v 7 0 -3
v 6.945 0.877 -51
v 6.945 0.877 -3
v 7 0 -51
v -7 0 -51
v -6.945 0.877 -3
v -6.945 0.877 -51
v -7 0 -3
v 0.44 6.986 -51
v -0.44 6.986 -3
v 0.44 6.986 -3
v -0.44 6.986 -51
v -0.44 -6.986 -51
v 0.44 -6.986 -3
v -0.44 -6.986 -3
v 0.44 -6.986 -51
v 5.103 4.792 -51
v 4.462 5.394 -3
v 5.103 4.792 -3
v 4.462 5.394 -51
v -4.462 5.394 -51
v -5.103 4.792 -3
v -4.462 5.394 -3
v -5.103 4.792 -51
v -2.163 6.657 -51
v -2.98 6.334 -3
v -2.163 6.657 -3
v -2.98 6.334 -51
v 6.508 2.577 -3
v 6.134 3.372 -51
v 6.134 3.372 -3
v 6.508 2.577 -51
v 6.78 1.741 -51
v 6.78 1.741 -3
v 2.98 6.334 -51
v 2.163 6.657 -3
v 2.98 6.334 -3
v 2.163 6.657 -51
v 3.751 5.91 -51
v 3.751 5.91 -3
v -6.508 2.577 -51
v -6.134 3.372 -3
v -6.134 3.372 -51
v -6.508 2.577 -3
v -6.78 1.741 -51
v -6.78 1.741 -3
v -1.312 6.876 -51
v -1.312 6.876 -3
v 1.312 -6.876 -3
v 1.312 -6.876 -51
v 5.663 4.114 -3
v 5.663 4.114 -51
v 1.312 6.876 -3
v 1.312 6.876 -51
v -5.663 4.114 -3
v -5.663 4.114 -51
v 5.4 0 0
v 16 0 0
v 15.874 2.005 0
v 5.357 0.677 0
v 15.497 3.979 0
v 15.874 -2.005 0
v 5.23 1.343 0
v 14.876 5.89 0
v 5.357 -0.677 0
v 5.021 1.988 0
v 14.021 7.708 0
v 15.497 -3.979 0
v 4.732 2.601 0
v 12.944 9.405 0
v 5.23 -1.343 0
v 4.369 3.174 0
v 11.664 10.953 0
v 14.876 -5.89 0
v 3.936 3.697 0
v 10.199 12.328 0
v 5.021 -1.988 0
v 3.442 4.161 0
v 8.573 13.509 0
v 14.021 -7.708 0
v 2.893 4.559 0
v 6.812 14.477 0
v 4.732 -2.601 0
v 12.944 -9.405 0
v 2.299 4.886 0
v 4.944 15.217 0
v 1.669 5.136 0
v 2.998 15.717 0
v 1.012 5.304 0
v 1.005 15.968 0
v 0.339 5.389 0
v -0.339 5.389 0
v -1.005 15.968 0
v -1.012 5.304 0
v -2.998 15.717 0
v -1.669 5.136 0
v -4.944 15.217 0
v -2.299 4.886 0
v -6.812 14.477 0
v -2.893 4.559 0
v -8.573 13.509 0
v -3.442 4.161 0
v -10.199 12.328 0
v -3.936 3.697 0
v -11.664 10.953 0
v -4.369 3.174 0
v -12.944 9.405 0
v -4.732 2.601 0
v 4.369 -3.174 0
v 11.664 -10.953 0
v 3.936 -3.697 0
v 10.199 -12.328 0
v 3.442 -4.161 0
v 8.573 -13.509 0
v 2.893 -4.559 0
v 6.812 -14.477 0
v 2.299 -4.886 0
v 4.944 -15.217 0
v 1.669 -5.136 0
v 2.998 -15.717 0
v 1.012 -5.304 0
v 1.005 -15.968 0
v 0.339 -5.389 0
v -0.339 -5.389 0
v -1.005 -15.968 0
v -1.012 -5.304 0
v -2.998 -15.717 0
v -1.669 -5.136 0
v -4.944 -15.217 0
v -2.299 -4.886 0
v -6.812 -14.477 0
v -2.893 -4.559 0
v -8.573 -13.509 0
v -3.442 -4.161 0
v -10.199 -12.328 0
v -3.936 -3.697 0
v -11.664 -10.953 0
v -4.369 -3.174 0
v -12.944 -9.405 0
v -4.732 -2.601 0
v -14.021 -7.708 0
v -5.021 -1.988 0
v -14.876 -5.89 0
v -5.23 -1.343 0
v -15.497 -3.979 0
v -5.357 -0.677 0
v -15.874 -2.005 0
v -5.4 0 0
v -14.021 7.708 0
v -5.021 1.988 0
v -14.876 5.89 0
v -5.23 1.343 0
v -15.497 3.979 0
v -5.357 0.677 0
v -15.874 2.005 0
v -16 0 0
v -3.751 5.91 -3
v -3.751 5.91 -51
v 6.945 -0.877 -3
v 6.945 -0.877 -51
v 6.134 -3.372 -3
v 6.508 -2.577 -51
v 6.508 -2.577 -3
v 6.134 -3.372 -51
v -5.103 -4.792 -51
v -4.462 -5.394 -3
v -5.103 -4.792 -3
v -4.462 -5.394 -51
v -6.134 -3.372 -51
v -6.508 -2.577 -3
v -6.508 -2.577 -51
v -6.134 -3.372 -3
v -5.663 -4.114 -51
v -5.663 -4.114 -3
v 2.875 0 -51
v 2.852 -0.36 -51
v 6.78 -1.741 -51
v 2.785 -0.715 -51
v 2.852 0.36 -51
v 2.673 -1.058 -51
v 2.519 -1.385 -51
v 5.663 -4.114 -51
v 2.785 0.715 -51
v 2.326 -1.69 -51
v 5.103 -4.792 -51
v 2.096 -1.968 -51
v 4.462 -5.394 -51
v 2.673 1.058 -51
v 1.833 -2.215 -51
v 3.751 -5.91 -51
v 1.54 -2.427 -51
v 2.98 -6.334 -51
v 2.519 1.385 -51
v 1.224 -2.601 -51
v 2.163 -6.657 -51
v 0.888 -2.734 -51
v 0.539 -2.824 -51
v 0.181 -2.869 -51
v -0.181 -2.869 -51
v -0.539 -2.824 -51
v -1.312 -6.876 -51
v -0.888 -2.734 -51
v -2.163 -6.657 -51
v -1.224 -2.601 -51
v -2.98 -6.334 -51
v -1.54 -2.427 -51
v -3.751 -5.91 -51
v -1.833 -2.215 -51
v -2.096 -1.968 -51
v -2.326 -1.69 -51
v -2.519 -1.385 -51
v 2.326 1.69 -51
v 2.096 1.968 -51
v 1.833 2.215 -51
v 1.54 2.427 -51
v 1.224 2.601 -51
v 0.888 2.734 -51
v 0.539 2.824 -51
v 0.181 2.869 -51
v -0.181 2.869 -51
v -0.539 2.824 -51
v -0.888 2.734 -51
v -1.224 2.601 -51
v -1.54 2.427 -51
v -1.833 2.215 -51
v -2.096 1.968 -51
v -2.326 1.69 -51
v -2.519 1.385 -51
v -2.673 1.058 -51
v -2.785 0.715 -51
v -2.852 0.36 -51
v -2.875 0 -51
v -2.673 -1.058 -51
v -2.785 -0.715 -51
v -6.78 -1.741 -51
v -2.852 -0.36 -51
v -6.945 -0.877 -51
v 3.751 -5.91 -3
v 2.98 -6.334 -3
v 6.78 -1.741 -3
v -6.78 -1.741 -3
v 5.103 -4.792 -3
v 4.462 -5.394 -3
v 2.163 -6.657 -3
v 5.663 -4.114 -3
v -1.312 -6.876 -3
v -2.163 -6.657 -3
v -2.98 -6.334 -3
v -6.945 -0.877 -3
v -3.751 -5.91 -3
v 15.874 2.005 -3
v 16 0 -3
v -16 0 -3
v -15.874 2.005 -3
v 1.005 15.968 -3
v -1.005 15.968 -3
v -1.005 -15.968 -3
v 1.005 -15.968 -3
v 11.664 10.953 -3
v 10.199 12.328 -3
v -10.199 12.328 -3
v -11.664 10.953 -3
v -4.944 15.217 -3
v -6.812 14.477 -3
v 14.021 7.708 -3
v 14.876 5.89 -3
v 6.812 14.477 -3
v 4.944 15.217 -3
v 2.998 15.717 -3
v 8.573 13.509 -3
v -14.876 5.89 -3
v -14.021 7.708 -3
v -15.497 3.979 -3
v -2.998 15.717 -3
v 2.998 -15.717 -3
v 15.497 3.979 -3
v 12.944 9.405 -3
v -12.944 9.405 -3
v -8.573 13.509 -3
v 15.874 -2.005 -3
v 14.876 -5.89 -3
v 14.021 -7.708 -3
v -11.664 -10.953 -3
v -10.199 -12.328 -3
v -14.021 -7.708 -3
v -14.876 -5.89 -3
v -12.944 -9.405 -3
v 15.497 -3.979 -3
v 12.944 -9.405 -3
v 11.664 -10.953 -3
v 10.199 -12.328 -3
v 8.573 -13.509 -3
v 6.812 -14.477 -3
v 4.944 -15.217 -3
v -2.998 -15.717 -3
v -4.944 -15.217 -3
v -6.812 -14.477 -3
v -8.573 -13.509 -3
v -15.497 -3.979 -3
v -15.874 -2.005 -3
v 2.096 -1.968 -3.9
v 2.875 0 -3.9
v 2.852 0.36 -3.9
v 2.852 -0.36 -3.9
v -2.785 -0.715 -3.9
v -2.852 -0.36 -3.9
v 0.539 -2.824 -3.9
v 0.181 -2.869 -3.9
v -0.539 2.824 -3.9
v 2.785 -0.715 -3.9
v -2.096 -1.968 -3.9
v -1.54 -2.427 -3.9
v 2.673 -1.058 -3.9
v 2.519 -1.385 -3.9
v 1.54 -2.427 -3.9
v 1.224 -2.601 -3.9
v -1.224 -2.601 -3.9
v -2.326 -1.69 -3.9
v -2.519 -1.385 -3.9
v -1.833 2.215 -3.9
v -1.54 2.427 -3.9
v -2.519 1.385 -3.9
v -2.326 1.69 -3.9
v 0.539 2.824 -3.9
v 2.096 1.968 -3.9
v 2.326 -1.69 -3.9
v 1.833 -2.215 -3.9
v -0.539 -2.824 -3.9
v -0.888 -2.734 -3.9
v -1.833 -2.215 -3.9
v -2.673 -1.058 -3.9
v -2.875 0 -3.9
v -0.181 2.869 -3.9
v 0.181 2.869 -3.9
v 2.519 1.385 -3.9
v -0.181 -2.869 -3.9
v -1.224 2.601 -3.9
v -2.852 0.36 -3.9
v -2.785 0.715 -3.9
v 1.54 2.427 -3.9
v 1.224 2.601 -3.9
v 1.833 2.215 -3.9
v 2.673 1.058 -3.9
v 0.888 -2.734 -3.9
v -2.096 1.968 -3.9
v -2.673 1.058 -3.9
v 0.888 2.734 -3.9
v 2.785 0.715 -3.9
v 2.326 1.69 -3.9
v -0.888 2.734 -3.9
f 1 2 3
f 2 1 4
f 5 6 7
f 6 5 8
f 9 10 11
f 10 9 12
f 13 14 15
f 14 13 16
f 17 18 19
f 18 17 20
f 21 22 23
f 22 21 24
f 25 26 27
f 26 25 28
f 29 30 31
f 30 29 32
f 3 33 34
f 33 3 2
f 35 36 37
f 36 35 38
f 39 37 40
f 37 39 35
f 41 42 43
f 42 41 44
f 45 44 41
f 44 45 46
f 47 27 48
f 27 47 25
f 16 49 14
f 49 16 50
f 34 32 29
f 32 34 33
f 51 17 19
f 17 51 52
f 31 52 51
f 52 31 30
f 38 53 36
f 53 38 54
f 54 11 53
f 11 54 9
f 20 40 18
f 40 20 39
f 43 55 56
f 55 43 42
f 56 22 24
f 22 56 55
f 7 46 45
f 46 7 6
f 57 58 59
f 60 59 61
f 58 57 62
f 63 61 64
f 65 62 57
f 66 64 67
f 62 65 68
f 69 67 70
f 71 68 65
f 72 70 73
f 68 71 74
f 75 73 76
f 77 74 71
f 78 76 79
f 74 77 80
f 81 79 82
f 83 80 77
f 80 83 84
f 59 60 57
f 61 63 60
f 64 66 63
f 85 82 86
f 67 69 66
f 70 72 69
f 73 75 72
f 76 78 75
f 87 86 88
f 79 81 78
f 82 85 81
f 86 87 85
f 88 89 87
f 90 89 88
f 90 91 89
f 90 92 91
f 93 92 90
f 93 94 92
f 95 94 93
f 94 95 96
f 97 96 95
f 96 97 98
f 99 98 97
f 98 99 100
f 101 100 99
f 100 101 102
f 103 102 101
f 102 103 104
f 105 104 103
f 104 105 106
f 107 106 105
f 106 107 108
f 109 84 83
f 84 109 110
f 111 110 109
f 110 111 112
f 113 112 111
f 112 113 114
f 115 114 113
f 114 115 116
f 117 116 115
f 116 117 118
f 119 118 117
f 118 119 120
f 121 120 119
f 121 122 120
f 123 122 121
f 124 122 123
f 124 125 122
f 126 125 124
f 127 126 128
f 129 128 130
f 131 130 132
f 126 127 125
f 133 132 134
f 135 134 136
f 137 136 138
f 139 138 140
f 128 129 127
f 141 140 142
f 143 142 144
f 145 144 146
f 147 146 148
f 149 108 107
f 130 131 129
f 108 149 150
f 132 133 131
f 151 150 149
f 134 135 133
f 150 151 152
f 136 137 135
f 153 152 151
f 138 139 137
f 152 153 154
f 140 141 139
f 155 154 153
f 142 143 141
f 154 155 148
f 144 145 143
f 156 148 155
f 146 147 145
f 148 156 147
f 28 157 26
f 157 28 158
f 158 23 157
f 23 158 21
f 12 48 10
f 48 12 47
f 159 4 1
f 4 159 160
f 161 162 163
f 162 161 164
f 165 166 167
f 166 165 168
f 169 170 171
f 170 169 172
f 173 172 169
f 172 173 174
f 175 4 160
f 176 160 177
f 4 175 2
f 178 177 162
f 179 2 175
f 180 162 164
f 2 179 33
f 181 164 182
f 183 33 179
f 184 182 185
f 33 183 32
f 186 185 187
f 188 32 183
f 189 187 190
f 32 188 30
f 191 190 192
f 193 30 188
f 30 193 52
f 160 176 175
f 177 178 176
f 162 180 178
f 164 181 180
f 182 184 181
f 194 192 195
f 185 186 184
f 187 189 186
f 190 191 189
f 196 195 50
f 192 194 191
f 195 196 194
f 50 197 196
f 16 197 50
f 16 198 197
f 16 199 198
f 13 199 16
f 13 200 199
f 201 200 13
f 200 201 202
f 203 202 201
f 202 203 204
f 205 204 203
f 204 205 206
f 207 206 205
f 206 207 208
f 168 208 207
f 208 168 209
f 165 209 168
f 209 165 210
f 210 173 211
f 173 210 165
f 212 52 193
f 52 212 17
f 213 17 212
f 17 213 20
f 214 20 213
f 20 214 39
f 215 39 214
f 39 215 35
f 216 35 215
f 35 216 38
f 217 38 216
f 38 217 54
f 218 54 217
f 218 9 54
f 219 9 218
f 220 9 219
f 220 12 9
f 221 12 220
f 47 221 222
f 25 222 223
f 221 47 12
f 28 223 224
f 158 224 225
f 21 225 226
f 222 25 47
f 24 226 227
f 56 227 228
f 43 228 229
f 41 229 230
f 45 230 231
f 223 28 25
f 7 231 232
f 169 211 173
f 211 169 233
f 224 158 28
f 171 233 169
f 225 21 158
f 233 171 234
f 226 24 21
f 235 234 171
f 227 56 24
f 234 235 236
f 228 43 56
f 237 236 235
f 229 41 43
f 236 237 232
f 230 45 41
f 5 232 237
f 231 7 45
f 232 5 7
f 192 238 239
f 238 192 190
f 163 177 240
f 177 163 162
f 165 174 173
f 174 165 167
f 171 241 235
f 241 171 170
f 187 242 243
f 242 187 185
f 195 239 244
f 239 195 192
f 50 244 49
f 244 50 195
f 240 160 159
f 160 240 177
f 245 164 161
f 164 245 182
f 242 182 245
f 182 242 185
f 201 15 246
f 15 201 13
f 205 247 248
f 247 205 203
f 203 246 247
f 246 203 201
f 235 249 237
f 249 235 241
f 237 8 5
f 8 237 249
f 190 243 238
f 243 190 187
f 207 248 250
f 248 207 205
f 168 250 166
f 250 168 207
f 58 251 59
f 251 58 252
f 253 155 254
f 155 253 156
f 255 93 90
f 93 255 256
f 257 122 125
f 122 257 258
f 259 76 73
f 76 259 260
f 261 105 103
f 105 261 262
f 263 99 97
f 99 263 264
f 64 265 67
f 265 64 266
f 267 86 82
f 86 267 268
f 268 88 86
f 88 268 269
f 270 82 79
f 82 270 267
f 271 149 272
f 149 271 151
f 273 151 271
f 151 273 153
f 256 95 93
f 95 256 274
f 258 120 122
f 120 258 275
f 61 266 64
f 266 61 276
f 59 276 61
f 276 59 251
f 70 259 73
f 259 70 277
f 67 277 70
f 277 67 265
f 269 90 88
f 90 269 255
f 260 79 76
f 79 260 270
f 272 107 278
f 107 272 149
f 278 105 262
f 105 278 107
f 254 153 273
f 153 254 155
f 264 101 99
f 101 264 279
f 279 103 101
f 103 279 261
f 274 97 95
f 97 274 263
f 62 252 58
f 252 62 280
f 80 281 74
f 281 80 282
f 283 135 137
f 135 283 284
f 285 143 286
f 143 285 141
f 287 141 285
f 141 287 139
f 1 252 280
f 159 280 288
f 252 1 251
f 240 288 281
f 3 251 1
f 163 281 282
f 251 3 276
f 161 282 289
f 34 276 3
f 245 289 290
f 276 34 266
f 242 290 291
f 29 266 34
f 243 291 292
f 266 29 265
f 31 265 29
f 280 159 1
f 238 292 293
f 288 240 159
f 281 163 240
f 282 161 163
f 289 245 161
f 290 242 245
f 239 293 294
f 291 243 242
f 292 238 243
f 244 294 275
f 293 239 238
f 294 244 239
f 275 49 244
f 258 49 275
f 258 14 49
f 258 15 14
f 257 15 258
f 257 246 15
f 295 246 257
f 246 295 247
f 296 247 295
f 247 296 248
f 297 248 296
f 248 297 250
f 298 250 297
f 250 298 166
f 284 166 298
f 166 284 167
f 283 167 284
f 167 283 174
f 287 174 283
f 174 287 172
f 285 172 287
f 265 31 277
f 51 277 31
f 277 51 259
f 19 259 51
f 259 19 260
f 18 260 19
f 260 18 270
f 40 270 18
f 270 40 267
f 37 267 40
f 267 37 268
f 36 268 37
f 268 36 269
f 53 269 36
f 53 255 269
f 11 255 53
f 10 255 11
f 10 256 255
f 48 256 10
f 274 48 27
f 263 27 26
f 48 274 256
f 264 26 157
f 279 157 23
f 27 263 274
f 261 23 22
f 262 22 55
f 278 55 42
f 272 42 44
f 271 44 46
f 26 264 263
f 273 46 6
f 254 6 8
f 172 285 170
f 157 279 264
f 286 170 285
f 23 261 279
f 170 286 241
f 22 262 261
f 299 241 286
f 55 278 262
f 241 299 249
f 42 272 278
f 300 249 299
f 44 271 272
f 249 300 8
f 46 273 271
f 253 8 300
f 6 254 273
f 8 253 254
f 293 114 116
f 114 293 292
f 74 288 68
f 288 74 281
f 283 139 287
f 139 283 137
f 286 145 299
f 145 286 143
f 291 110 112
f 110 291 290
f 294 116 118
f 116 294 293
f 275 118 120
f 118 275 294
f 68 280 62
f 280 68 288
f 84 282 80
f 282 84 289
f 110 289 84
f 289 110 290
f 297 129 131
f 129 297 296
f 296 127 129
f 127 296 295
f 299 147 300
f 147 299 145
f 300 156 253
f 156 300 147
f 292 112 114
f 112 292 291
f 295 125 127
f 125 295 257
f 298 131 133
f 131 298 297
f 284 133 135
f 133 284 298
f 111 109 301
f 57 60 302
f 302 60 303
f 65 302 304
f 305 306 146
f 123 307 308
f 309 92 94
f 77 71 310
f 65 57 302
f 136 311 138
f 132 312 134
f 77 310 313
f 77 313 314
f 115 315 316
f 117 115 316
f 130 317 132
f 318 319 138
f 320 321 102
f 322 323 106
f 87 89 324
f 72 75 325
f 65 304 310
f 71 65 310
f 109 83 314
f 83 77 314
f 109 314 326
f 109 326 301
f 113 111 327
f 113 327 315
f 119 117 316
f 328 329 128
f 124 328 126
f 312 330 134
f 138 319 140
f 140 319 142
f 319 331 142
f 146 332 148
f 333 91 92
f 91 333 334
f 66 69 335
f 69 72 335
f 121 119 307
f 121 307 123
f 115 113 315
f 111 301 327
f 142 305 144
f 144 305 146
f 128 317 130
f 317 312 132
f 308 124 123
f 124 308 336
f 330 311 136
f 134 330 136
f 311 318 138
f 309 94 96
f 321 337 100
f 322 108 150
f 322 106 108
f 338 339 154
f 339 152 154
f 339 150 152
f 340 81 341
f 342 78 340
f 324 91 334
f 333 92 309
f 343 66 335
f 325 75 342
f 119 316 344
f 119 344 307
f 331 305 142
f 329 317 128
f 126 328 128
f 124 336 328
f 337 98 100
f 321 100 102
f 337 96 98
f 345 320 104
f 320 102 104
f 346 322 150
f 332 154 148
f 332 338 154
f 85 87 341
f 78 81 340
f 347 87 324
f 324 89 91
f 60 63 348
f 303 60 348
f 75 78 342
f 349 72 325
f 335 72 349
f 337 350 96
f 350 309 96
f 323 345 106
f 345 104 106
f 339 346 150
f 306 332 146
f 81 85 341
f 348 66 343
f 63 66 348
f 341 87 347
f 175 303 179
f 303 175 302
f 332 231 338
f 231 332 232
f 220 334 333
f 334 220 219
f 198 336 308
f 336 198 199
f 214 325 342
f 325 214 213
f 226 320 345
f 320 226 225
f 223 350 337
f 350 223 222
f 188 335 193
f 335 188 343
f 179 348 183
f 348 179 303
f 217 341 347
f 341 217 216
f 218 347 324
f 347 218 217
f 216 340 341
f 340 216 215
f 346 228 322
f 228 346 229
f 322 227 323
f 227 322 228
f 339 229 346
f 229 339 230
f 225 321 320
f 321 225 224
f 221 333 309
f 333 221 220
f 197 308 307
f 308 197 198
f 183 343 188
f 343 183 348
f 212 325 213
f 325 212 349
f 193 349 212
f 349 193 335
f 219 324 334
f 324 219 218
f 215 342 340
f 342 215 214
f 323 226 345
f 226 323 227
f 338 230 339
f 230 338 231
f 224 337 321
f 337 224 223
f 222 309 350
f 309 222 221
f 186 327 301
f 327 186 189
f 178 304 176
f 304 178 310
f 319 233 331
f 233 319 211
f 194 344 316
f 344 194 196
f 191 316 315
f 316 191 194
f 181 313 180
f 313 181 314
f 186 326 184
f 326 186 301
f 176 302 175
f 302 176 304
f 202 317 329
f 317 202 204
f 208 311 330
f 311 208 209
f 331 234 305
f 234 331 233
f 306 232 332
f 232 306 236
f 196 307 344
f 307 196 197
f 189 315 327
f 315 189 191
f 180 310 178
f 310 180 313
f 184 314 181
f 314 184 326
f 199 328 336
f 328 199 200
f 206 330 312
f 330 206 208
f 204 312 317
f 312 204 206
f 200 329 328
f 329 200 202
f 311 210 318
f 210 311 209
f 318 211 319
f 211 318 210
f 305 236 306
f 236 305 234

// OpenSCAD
$fn = 50;


difference() {
	union() {
		translate(v = [0, 0, -51.0000000000]) {
			cylinder(h = 51, r = 7.0000000000);
		}
		translate(v = [0, 0, -3.0000000000]) {
			cylinder(h = 3, r = 16.0000000000);
		}
	}
	union() {
		translate(v = [0, 0, 0]) {
			rotate(a = [0, 0, 0]) {
				difference() {
					union() {
						#translate(v = [0, 0, -51.0000000000]) {
							cylinder(h = 51, r = 2.6000000000);
						}
						#translate(v = [0, 0, -3.9000000000]) {
							cylinder(h = 3.9000000000, r = 7.0000000000, r1 = 2.8750000000, r2 = 5.4000000000);
						}
						#translate(v = [0, 0, -51.0000000000]) {
							cylinder(h = 51, r = 2.8750000000);
						}
						#translate(v = [0, 0, -51.0000000000]) {
							cylinder(h = 51, r = 2.6000000000);
						}
					}
					union();
				}
			}
		}
	}
}
